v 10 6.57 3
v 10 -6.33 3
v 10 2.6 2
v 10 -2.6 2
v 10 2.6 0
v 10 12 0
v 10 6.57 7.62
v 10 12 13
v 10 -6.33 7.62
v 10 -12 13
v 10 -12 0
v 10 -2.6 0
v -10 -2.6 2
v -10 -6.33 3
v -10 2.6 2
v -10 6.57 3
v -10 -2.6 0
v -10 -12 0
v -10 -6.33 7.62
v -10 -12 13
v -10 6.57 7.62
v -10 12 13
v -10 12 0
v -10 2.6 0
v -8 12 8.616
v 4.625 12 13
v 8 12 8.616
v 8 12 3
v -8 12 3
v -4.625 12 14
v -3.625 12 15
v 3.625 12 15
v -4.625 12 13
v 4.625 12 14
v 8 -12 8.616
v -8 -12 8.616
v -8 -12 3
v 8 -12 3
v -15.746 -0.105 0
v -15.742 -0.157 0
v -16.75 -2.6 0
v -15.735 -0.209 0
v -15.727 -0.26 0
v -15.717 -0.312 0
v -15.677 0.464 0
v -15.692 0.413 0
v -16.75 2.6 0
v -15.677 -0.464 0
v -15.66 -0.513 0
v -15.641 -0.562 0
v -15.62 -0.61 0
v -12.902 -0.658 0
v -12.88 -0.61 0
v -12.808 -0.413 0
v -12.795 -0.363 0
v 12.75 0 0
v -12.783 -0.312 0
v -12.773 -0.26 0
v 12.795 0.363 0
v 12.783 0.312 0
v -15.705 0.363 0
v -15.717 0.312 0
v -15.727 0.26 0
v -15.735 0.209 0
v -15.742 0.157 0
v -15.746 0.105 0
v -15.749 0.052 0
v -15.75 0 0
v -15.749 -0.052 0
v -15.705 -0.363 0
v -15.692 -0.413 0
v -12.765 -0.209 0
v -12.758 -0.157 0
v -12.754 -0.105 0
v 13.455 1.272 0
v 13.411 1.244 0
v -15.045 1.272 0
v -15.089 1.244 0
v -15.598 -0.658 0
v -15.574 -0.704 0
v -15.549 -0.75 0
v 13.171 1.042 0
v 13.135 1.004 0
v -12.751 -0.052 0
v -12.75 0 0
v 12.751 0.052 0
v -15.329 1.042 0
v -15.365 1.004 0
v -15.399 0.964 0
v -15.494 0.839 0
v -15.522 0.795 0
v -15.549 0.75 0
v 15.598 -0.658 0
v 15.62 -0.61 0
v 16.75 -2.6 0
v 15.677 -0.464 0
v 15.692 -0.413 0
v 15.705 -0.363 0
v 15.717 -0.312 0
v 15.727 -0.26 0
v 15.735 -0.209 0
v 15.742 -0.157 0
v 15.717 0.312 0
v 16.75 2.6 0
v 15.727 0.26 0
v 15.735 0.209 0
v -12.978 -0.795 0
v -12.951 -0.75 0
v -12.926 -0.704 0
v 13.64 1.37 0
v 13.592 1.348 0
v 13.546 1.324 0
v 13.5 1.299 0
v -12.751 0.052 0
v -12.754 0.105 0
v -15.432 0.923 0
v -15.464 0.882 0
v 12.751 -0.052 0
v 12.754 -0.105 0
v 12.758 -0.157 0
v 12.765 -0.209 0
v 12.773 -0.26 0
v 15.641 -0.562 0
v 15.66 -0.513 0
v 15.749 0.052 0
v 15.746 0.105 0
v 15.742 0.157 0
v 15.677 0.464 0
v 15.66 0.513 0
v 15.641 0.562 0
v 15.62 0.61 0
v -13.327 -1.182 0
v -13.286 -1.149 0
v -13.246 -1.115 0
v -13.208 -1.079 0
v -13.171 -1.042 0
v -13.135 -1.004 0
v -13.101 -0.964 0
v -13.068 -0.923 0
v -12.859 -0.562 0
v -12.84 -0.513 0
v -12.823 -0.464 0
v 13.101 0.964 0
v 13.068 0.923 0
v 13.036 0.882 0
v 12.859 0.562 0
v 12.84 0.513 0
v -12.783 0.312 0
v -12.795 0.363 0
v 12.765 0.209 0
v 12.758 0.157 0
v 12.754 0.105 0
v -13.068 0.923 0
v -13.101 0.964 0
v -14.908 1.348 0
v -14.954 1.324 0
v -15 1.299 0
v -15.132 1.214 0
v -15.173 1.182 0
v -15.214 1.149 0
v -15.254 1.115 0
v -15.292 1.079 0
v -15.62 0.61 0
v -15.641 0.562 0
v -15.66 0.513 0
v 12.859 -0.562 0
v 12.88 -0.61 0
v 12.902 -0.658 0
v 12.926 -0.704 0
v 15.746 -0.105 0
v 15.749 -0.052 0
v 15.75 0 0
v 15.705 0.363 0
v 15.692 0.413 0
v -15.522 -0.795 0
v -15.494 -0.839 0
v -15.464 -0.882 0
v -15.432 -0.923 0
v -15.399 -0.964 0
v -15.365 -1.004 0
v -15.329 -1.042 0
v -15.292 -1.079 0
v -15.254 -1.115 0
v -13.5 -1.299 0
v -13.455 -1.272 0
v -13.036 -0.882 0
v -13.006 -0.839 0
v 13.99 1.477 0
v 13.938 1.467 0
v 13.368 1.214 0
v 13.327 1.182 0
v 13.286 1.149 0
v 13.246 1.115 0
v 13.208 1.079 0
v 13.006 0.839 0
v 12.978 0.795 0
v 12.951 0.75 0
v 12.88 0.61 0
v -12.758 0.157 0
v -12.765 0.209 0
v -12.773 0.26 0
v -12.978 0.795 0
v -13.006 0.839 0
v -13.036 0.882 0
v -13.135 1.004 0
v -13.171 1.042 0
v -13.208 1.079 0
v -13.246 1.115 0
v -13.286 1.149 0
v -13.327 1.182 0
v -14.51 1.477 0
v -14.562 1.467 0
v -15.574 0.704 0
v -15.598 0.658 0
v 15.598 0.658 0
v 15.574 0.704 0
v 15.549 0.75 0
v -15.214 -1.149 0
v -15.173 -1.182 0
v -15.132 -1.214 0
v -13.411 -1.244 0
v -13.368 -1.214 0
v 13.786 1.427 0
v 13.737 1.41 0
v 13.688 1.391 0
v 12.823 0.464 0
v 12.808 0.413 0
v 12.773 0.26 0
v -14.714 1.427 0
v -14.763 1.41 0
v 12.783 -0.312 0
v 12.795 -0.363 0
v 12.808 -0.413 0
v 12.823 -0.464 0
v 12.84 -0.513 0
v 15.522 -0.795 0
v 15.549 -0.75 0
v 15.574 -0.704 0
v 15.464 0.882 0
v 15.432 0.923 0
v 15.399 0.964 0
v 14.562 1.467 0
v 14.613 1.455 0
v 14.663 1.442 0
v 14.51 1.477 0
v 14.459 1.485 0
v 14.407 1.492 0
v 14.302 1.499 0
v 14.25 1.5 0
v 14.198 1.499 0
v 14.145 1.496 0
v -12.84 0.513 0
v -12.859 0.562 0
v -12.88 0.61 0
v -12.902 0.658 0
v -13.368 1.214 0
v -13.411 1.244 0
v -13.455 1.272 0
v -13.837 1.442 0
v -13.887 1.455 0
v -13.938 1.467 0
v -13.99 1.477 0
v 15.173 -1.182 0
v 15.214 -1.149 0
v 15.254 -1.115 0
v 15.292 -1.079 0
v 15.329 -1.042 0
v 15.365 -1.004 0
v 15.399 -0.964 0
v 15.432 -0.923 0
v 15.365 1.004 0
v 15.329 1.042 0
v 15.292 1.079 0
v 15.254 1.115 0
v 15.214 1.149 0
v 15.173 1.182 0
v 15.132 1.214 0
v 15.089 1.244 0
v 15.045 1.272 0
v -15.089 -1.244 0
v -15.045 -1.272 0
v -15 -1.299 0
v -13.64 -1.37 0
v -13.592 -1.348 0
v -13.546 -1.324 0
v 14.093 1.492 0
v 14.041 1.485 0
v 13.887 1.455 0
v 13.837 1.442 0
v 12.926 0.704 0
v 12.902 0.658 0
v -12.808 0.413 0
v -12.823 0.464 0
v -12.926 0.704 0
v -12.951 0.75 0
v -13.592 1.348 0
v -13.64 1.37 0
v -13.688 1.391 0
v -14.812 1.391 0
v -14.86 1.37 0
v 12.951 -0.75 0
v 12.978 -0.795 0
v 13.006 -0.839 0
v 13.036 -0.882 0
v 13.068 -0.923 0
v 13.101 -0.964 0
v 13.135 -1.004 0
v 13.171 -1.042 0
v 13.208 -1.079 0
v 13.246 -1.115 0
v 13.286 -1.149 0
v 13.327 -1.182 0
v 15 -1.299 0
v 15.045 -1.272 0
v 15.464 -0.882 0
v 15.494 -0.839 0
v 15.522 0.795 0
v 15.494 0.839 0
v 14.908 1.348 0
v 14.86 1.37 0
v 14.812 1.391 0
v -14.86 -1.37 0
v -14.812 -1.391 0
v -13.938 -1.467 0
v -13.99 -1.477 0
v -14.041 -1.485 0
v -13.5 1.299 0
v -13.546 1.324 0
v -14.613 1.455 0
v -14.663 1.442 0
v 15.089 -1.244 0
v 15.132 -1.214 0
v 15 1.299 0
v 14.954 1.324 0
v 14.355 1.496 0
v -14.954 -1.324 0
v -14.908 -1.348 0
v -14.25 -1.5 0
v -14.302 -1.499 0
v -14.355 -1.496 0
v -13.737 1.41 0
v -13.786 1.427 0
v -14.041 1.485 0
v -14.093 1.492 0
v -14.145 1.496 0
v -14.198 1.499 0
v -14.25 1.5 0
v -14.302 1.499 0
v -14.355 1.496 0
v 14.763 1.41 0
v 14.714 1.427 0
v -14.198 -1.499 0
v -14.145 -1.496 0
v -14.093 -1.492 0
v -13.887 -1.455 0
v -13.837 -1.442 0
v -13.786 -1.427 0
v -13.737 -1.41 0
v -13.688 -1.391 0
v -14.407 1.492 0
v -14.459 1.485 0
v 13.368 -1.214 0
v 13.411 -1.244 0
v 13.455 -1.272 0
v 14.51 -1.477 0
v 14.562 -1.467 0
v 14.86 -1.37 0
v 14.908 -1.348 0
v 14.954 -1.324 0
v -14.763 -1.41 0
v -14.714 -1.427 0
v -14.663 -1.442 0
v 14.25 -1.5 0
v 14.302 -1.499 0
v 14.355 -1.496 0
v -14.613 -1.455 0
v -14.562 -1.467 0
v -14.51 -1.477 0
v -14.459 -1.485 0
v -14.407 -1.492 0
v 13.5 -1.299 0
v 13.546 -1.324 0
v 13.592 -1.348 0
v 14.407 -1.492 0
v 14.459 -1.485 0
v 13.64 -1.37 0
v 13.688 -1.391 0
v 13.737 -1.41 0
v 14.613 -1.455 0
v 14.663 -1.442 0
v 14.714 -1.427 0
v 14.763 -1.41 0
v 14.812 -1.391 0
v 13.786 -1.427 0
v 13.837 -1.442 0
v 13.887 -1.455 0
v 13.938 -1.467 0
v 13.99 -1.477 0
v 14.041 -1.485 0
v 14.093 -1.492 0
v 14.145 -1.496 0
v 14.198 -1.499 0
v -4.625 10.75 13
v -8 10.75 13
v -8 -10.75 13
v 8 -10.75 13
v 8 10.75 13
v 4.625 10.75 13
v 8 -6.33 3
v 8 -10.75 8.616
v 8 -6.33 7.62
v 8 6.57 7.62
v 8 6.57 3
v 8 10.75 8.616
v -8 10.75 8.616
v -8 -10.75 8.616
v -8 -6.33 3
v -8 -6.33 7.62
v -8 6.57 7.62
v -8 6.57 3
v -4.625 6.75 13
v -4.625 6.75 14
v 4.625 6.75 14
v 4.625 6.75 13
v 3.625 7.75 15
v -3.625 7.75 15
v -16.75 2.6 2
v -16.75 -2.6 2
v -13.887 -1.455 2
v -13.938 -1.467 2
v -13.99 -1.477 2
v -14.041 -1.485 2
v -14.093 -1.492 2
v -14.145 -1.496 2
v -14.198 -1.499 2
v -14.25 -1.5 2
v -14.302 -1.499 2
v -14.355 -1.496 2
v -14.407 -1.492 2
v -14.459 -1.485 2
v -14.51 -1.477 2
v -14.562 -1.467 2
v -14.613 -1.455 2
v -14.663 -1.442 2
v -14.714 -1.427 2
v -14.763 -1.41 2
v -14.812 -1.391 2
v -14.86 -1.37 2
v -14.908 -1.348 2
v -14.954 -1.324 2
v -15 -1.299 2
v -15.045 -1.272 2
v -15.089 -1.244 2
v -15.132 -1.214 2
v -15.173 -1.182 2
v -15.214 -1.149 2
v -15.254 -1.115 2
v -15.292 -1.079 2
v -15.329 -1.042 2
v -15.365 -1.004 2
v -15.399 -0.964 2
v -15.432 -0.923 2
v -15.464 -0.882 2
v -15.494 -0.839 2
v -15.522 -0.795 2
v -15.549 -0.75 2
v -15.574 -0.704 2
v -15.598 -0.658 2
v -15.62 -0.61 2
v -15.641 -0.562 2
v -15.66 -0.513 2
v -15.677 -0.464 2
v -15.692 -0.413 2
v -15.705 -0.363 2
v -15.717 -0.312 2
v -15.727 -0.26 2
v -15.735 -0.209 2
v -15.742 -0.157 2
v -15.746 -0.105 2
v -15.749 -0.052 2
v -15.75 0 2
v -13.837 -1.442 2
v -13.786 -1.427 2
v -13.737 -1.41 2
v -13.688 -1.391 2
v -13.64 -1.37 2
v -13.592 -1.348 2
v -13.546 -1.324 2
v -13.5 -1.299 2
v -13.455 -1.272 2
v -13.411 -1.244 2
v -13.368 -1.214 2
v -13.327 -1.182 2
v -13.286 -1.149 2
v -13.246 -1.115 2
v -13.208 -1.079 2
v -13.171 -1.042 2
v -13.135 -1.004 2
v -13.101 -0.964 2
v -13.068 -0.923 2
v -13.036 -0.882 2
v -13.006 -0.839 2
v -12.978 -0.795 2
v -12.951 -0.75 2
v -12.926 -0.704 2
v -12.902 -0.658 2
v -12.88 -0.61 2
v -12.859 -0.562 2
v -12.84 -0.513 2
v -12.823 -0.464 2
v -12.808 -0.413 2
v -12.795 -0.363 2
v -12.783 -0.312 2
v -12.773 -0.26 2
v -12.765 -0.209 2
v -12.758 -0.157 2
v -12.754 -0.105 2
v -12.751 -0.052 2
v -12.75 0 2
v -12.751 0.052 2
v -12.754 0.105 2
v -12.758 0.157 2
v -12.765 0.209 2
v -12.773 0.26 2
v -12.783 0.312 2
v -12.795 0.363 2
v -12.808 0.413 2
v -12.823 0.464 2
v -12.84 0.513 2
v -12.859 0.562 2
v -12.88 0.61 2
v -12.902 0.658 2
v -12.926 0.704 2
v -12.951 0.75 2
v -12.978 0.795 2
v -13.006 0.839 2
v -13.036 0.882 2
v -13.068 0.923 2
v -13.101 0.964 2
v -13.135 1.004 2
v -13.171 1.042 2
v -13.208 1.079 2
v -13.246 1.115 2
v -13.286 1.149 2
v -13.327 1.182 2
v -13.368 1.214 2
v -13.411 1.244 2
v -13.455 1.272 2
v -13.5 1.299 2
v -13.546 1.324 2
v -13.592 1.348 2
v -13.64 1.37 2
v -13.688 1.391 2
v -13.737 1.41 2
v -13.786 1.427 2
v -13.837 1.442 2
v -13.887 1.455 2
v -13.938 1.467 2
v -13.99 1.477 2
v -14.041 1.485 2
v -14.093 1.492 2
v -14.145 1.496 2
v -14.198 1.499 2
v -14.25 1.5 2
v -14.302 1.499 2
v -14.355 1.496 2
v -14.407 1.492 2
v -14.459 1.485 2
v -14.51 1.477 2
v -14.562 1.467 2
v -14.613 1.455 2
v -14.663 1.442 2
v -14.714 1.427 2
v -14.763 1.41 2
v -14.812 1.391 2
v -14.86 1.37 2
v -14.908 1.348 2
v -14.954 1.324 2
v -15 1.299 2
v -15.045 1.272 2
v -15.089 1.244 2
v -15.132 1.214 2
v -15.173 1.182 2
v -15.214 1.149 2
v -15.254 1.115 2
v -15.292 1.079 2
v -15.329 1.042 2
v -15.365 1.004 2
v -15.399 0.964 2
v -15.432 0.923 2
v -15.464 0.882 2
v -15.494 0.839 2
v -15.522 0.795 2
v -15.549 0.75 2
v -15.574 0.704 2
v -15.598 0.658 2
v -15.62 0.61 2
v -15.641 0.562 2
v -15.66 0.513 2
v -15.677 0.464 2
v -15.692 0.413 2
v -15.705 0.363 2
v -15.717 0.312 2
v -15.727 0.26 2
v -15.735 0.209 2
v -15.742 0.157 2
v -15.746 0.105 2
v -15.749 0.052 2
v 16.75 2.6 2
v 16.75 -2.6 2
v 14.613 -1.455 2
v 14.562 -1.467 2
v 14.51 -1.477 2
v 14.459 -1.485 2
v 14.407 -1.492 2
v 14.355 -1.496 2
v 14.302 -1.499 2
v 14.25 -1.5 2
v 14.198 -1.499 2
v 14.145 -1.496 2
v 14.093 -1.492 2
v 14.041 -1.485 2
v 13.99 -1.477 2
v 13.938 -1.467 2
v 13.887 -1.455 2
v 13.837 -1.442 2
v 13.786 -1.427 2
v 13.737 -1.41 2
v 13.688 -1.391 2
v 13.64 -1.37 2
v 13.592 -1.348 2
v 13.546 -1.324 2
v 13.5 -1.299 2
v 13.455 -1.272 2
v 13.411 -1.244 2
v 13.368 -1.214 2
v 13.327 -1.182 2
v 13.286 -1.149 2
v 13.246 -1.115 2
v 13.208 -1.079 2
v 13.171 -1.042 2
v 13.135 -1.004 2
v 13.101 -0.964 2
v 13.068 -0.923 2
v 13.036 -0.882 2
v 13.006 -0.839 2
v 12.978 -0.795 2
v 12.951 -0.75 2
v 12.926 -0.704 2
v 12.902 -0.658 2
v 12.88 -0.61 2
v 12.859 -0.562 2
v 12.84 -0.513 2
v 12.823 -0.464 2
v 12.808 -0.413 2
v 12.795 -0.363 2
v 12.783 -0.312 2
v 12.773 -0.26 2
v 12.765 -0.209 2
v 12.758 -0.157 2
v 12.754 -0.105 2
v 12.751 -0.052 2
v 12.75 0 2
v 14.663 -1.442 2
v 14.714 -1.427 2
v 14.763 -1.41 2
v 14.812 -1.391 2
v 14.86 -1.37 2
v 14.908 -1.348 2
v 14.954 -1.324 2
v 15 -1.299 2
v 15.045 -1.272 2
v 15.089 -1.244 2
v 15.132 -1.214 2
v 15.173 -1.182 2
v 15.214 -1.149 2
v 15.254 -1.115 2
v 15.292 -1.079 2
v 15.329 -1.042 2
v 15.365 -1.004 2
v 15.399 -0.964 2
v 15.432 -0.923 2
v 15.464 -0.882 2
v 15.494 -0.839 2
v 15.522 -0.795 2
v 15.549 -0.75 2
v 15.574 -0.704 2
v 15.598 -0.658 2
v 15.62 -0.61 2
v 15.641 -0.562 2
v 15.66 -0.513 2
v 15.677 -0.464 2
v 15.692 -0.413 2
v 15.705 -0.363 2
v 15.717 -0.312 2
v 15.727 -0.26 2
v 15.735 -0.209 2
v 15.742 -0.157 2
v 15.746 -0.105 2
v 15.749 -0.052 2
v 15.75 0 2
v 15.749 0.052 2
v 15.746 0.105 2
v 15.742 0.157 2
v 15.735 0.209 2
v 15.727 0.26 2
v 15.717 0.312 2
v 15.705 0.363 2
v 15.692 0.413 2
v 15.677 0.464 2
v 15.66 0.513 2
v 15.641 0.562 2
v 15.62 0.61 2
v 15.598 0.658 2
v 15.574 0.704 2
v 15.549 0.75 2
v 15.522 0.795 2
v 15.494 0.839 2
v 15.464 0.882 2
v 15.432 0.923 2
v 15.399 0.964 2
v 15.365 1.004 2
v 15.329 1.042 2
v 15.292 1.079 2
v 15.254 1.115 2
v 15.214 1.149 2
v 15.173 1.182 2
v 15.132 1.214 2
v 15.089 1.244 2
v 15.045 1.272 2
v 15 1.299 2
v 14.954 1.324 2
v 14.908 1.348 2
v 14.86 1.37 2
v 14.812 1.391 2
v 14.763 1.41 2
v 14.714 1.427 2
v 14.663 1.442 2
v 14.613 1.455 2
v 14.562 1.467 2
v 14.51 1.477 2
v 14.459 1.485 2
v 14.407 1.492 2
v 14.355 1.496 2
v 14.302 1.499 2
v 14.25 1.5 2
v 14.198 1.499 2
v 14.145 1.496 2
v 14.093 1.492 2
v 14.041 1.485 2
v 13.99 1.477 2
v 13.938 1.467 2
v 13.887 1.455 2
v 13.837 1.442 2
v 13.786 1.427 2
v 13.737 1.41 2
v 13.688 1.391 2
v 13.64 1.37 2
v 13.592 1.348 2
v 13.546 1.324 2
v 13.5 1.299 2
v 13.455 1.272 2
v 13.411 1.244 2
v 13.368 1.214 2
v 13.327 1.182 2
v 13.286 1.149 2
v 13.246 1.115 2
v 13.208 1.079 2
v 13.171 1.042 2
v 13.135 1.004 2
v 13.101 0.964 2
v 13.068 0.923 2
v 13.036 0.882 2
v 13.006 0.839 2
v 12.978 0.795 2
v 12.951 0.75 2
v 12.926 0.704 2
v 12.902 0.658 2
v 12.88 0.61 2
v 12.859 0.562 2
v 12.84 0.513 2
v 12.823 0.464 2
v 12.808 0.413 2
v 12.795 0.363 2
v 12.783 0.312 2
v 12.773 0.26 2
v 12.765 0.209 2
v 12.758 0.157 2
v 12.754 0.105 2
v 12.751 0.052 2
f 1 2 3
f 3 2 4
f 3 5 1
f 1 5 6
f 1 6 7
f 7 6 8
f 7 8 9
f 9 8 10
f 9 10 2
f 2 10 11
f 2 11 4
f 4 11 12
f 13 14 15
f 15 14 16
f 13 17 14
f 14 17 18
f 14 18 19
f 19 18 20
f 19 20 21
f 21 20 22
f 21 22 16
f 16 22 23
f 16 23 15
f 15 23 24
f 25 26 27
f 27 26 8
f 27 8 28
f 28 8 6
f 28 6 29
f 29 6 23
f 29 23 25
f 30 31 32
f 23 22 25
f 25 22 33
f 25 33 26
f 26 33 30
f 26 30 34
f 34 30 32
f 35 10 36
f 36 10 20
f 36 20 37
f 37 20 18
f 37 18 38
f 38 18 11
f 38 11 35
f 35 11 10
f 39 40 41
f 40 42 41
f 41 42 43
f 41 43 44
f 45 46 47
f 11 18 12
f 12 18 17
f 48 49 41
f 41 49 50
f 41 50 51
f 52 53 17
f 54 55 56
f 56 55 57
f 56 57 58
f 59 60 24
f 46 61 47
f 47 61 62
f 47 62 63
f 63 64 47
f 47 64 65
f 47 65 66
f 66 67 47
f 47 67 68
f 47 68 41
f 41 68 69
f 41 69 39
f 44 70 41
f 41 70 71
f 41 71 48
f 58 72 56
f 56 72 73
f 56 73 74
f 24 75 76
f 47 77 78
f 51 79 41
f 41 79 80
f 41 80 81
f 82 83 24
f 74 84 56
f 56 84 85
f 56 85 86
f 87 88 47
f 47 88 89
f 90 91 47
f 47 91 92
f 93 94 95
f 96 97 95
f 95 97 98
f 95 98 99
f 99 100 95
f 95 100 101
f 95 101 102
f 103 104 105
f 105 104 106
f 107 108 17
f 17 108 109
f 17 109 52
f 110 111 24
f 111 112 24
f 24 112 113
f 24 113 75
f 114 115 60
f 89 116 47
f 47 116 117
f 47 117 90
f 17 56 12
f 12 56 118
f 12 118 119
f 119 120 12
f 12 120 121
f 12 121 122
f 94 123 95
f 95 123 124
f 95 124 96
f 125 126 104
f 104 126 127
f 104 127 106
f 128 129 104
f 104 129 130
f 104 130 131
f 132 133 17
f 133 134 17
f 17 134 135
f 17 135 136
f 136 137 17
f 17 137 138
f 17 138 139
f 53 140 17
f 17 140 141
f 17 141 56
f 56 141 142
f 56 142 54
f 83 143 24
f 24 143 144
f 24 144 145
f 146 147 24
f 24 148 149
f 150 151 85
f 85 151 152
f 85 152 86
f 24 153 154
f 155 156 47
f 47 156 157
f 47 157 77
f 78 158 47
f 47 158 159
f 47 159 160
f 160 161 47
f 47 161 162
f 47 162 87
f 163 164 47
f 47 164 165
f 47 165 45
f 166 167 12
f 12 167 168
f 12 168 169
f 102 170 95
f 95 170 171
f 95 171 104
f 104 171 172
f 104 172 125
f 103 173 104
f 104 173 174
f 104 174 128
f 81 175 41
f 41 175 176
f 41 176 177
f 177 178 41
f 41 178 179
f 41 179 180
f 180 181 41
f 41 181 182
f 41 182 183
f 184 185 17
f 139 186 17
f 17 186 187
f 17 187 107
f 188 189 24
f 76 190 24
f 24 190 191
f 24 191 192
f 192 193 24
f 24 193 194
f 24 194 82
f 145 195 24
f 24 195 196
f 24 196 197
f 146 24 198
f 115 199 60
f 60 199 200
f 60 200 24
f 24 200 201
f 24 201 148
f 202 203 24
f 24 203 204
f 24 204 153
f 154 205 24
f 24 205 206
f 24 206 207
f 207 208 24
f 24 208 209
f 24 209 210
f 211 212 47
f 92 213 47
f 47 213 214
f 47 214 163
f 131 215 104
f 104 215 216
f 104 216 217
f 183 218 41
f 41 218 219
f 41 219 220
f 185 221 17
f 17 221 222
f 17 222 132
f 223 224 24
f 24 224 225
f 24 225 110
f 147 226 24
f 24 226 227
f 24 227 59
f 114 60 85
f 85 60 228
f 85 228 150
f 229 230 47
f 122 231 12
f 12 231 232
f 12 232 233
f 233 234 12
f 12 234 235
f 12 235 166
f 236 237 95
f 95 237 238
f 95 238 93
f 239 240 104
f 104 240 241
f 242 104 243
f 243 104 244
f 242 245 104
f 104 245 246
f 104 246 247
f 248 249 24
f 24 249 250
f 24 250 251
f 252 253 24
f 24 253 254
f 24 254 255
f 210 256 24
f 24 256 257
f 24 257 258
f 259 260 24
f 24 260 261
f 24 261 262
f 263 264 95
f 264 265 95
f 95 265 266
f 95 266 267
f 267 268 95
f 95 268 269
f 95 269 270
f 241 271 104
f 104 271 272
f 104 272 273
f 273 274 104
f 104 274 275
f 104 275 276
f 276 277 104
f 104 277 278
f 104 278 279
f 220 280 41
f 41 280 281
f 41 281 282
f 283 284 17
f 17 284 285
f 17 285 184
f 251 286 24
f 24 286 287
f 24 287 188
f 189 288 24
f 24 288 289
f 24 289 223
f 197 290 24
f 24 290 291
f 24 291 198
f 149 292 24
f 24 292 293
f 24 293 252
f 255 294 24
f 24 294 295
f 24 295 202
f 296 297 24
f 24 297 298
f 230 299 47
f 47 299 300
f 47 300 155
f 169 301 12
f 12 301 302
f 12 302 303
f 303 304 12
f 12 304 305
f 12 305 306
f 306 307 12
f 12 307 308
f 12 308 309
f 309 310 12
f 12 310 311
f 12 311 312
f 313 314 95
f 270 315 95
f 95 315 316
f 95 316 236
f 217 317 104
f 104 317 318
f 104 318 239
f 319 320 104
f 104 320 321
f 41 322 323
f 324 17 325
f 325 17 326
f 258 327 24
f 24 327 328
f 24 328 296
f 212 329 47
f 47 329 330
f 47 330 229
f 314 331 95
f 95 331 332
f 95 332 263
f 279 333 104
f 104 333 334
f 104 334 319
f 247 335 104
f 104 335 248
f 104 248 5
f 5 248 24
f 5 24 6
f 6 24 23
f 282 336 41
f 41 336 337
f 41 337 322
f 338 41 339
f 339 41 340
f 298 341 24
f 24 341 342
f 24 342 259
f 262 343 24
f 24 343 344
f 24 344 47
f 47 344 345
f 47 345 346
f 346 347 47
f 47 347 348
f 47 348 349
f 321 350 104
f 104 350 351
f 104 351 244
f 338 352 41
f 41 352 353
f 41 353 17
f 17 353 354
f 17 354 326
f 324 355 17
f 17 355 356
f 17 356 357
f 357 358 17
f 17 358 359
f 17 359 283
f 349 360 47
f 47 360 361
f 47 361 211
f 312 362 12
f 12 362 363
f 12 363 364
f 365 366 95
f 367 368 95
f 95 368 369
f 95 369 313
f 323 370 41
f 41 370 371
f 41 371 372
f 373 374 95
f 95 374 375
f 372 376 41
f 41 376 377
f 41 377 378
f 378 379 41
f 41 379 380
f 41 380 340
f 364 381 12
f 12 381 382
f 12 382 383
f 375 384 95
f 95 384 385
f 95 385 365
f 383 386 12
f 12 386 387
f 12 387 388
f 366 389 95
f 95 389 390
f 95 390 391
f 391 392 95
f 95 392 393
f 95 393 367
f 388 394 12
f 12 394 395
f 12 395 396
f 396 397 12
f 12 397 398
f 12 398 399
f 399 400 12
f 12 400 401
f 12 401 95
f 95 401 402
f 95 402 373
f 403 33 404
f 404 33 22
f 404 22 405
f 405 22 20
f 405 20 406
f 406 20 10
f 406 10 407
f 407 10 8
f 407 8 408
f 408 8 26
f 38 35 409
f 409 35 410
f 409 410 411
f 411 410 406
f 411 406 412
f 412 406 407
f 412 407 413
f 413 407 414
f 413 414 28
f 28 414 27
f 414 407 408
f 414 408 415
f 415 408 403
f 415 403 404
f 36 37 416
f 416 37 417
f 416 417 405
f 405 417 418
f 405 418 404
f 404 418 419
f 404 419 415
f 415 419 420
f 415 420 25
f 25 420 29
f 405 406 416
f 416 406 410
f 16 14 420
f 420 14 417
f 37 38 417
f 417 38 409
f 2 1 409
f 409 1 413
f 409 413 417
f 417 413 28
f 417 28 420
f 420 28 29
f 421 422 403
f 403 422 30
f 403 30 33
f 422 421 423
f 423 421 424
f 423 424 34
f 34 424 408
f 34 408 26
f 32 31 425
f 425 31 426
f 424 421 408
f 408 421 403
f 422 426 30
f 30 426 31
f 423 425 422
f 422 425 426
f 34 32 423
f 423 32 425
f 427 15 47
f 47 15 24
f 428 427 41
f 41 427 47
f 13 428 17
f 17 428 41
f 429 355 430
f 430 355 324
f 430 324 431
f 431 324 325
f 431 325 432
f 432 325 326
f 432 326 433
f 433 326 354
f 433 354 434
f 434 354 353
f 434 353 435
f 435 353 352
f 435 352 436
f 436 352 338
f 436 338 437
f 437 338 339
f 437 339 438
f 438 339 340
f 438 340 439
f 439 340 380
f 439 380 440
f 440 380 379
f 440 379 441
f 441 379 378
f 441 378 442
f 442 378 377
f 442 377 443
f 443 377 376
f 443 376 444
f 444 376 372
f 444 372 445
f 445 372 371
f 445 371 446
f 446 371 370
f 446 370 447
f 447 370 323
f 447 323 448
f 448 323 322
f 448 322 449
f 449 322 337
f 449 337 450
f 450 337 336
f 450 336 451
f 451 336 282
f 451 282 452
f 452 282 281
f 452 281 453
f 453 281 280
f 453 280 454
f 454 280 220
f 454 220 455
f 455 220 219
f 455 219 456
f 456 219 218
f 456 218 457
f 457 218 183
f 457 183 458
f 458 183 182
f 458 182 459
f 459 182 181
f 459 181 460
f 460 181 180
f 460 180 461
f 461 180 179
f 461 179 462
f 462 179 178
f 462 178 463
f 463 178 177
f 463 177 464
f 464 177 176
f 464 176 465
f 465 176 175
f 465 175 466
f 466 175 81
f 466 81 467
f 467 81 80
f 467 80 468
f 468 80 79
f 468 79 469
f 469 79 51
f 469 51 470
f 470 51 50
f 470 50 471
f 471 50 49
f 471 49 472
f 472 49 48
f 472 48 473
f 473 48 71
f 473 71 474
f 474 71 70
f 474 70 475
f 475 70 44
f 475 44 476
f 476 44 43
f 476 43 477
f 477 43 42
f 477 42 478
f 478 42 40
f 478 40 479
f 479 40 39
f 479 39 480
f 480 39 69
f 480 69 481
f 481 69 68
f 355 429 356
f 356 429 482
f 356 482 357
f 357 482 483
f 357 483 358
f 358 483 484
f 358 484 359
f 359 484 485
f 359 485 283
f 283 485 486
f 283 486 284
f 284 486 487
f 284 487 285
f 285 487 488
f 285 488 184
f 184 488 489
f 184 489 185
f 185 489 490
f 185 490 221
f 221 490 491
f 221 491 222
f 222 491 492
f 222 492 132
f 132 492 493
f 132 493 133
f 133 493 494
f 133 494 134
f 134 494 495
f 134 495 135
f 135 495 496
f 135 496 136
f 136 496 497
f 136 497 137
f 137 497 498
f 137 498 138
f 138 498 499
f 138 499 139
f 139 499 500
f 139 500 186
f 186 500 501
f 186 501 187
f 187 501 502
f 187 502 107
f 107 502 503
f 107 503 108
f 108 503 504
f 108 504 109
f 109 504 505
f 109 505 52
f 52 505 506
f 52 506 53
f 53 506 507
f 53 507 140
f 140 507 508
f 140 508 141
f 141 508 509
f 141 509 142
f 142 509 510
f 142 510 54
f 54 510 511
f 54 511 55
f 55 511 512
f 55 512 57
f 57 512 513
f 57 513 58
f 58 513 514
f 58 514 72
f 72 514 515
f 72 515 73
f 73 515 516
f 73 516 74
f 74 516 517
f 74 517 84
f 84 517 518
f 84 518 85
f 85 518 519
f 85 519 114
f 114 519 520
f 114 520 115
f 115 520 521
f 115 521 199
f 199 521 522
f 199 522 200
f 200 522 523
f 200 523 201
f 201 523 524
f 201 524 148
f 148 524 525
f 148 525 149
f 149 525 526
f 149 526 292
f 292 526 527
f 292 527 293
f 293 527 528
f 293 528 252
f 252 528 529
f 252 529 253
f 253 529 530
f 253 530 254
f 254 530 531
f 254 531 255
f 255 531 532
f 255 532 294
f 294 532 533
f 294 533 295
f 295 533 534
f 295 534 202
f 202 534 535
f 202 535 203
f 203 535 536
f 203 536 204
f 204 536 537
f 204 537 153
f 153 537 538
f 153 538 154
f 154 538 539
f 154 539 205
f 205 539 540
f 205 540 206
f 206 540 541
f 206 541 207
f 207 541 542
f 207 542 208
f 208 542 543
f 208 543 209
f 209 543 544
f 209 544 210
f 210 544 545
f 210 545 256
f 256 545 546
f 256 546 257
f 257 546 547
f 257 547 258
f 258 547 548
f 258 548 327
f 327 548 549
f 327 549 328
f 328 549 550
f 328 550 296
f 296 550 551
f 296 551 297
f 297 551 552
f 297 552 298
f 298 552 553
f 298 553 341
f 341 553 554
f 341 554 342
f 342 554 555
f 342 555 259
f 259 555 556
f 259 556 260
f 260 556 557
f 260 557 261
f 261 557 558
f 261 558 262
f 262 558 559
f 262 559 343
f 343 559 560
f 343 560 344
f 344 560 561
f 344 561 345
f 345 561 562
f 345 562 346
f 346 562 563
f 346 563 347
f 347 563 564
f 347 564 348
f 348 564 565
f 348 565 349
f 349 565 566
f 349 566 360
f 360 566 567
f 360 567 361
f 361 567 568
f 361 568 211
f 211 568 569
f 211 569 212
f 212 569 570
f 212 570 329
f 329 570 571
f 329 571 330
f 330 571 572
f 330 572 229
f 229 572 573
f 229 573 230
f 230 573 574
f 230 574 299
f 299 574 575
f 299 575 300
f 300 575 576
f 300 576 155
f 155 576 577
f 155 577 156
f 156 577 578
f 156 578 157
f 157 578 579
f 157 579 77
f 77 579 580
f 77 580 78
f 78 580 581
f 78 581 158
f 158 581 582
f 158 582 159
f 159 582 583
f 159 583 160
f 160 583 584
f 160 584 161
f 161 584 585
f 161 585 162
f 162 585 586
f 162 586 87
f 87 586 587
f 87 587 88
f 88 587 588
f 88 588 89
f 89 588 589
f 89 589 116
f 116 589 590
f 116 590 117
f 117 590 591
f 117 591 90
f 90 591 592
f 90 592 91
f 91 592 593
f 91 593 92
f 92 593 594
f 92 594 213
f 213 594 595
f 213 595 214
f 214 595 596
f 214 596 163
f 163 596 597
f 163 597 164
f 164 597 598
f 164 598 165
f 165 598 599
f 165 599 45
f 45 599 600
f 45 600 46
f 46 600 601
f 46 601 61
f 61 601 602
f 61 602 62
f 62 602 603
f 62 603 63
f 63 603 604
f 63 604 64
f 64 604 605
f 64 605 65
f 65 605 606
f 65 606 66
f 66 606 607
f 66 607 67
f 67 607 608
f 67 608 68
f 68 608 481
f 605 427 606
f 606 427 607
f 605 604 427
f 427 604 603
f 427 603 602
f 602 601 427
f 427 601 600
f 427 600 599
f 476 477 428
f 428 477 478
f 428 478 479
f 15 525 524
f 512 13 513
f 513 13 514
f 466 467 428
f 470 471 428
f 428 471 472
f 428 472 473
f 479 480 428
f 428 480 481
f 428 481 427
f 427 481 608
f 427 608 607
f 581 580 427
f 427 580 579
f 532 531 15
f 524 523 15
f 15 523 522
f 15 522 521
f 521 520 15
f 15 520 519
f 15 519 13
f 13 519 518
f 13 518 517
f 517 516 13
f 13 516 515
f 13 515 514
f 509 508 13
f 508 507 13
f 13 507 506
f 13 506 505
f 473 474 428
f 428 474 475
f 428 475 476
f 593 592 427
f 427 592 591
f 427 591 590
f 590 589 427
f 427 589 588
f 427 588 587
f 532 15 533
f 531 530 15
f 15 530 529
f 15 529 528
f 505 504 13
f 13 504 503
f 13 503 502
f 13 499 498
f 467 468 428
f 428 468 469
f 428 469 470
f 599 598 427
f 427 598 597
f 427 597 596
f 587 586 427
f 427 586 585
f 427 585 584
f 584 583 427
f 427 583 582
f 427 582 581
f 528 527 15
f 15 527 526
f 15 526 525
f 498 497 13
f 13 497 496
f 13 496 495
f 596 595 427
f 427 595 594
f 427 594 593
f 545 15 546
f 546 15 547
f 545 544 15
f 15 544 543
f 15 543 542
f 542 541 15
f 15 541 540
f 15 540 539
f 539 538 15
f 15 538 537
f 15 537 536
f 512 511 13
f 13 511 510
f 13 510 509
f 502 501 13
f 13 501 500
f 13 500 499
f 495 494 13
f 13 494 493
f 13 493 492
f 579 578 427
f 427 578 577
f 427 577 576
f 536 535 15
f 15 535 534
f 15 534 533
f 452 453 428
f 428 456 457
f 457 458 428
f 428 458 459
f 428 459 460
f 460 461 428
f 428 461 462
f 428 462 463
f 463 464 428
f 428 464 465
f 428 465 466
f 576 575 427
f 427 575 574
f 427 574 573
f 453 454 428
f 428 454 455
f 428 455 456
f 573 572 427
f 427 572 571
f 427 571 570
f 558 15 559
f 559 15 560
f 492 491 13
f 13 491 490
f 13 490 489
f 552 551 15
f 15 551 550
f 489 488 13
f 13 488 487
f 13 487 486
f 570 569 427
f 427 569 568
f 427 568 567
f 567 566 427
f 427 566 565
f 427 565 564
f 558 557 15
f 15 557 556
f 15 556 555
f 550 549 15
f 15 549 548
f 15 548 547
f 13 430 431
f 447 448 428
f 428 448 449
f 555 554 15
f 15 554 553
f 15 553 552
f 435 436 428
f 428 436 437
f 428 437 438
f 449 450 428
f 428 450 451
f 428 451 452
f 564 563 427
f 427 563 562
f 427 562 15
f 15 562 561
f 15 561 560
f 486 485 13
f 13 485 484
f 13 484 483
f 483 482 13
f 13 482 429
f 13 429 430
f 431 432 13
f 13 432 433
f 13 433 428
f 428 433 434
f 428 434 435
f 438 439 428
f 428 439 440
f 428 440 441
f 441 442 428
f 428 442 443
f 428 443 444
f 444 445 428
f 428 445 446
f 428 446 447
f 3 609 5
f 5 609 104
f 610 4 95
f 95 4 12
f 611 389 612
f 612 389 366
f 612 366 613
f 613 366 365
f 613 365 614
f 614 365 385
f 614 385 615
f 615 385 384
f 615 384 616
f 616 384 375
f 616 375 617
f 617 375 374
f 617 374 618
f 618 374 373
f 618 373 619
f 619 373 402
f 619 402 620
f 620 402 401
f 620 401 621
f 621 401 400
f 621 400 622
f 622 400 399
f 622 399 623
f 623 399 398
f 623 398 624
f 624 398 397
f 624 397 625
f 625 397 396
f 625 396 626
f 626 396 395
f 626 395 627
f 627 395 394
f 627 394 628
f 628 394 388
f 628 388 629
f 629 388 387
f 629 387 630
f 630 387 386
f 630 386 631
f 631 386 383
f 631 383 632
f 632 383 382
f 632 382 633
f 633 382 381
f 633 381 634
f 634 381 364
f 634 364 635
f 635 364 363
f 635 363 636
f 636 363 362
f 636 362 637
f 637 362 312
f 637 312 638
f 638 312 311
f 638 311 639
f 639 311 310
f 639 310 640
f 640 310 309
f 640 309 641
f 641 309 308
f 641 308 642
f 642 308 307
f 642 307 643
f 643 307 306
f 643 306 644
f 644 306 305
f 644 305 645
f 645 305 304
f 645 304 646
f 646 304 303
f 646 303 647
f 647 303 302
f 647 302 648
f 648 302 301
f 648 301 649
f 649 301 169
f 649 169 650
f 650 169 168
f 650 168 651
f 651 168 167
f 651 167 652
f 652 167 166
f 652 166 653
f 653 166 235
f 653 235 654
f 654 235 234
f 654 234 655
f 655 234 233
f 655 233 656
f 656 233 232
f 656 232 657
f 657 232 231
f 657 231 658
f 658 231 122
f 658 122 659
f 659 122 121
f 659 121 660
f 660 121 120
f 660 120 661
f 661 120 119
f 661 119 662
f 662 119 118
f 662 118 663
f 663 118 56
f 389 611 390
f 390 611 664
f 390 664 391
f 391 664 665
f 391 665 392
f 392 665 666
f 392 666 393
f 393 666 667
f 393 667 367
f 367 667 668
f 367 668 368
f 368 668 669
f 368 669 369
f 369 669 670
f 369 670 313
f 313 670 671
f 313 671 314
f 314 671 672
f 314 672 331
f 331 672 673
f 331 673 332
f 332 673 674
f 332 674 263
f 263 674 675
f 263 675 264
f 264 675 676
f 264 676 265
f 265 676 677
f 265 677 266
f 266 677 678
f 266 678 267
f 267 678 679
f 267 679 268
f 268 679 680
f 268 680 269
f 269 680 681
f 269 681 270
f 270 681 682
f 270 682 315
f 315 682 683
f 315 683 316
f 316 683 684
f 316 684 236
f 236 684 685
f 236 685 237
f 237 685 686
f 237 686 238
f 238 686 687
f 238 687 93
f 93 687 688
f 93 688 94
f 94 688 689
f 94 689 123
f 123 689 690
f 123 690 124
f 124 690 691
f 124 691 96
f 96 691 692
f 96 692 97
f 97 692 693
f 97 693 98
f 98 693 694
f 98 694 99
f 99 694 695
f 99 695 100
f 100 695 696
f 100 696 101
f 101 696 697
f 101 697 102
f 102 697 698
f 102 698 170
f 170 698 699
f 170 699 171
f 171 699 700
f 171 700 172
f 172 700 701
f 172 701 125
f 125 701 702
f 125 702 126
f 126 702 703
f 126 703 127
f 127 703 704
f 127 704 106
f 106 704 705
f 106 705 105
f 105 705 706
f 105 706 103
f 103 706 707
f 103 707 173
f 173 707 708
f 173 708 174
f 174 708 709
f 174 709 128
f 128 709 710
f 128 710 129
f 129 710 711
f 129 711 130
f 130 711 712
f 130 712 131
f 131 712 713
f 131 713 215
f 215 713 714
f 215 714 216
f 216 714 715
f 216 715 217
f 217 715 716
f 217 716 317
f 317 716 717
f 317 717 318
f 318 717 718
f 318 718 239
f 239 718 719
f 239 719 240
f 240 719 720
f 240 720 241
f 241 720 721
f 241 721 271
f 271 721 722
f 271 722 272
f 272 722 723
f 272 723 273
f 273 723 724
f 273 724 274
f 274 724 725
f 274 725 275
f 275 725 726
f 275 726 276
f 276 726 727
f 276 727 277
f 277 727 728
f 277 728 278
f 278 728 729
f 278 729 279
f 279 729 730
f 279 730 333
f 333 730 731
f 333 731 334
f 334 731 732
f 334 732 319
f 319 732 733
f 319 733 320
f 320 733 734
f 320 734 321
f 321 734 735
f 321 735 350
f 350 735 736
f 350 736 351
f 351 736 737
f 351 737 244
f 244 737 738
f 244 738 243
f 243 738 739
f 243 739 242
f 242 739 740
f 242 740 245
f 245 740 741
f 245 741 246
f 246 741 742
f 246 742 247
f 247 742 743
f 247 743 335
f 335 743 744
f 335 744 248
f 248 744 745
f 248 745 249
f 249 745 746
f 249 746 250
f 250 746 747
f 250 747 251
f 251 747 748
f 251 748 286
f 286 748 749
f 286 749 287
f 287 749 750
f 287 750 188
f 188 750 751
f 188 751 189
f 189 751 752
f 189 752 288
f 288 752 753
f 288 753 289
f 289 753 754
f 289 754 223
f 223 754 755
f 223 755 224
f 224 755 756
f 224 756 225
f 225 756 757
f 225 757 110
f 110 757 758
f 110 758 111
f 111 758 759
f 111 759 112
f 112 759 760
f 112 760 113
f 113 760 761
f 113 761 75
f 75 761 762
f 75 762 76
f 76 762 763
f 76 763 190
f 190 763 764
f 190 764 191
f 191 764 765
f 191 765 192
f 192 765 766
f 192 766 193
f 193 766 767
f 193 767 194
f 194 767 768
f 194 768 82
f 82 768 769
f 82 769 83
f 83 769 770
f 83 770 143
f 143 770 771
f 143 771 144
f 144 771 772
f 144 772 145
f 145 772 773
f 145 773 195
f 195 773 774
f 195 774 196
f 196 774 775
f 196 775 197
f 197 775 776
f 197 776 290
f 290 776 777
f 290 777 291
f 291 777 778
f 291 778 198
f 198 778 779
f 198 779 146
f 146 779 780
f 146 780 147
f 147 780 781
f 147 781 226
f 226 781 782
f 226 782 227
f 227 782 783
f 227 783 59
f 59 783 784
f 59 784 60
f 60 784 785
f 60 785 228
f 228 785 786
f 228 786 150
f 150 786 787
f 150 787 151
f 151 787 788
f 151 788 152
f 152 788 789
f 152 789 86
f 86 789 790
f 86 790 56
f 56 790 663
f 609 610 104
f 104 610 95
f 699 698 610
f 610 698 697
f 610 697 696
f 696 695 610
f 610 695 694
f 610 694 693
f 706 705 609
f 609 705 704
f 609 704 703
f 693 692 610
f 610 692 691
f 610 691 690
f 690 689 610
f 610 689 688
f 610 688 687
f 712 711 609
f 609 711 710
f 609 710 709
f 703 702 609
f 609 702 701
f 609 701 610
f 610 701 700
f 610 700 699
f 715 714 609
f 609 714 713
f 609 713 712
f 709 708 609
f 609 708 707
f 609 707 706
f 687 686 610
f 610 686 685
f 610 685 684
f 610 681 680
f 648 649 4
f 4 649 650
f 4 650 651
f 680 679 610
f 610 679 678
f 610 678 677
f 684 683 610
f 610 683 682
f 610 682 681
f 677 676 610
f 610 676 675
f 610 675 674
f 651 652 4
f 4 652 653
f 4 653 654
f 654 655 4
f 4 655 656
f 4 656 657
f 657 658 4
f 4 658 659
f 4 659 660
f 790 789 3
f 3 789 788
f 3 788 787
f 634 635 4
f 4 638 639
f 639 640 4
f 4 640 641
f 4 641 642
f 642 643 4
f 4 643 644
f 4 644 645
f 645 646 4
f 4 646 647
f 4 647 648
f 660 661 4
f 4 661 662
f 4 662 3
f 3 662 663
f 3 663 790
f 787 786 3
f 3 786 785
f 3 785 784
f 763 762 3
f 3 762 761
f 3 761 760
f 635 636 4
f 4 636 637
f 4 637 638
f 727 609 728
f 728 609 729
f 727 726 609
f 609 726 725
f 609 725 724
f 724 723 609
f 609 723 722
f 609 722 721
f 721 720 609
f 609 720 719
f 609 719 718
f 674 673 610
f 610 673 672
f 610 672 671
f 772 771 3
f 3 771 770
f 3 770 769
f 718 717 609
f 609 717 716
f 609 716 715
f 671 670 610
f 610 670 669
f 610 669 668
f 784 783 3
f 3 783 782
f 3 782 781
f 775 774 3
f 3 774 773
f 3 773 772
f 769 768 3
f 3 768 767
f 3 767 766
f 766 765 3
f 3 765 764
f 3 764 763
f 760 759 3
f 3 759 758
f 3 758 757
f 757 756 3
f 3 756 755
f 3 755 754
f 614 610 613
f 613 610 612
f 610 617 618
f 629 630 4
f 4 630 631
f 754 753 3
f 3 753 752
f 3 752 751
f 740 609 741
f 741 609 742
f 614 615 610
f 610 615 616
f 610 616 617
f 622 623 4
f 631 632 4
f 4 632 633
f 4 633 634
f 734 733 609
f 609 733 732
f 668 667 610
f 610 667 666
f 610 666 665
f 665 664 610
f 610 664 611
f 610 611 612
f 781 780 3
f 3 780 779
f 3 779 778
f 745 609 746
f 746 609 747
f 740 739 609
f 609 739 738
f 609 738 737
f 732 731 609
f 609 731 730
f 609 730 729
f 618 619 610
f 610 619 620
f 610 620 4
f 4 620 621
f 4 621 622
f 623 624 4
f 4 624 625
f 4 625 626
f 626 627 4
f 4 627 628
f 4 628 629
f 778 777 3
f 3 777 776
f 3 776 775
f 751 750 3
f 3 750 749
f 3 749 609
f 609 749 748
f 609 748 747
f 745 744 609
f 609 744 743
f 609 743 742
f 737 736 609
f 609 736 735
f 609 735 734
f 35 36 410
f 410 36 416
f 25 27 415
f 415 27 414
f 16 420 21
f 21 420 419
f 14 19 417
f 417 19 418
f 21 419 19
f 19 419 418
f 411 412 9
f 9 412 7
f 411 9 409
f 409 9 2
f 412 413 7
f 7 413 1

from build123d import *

# Parameters (mm, degrees)
SKETCH1_W           = 20
SKETCH1_H           = 24
BOSS_EXTRUDE1_DEPTH = 3
SKETCH2_W           = 20
SKETCH2_H           = 24
SKETCH2_W_2         = 16
SKETCH2_H_2         = 21.5
BOSS_EXTRUDE2_DEPTH = 10
SKETCH3_W           = 9.25
SKETCH3_H           = 5.25
BOSS_EXTRUDE3_DEPTH = 2
CHAMFER1_SIZE       = 1
SKETCH4_W           = 6.75
SKETCH4_H           = 5.2
SKETCH4_R           = 1.5
BOSS_EXTRUDE4_DEPTH = 2
SKETCH5_W           = 16
SKETCH5_H           = 5.615862193
CUT_EXTRUDE1_DEPTH  = 33.887117539
SKETCH6_W           = 4.619985453
SKETCH6_H           = 12.899576223
CUT_EXTRUDE4_DEPTH  = 33.932696519


with BuildPart() as part:
    # Sketch1 → Boss-Extrude1 (new body)
    with BuildSketch(Plane.XY):
        Rectangle(SKETCH1_W, SKETCH1_H)
    extrude(amount=BOSS_EXTRUDE1_DEPTH)

    # Sketch2 → Boss-Extrude2 (add)
    with BuildSketch(Plane.XY.offset(3)):
        Rectangle(SKETCH2_W, SKETCH2_H)
        Rectangle(SKETCH2_W_2, SKETCH2_H_2, mode=Mode.SUBTRACT)
    extrude(amount=BOSS_EXTRUDE2_DEPTH)

    # Sketch3 → Boss-Extrude3 (add)
    with BuildSketch(Plane.XY.offset(13)):
        with Locations((0, 9.375)):
            Rectangle(SKETCH3_W, SKETCH3_H)
    extrude(amount=BOSS_EXTRUDE3_DEPTH)

    # Chamfer1
    chamfer1_edges = [part.edges().sort_by_distance(p)[0] for p in [
        (-4.625, 9.375, 15),
        (0, 6.75, 15),
        (4.625, 9.375, 15),
    ]]
    chamfer(chamfer1_edges, length=CHAMFER1_SIZE)

    # Sketch4 → Boss-Extrude4 (add)
    # profile 1 of 2: a face of its own
    with BuildSketch(Plane(origin=(0, 0, 0), x_dir=(-1, 0, 0), z_dir=(0, 0, -1))):
        with Locations((-13.375, 0)):
            Rectangle(SKETCH4_W, SKETCH4_H)
        with Locations((-14.25, 0)):
            Circle(SKETCH4_R, mode=Mode.SUBTRACT)
    # profile 2 of 2: a face of its own
    with BuildSketch(Plane(origin=(0, 0, 0), x_dir=(-1, 0, 0), z_dir=(0, 0, -1))):
        with Locations((13.375, 0)):
            Rectangle(SKETCH4_W, SKETCH4_H)
        with Locations((14.25, 0)):
            Circle(SKETCH4_R, mode=Mode.SUBTRACT)
    extrude(amount=-BOSS_EXTRUDE4_DEPTH)

    # Sketch5 → Cut-Extrude1 (cut, through all)
    with BuildSketch(Plane(origin=(0, 12, 0), x_dir=(1, 0, 0), z_dir=(0, 1, 0))):
        with Locations((0, -5.807931096)):
            Rectangle(SKETCH5_W, SKETCH5_H)
    extrude(amount=-CUT_EXTRUDE1_DEPTH, mode=Mode.SUBTRACT)

    # Sketch6 → Cut-Extrude4 (cut, through all)
    with BuildSketch(Plane.ZY.offset(10)):
        with Locations((5.309992727, 0.119967863)):
            Rectangle(SKETCH6_W, SKETCH6_H)
    extrude(amount=-CUT_EXTRUDE4_DEPTH, mode=Mode.SUBTRACT)


solid = part.part
